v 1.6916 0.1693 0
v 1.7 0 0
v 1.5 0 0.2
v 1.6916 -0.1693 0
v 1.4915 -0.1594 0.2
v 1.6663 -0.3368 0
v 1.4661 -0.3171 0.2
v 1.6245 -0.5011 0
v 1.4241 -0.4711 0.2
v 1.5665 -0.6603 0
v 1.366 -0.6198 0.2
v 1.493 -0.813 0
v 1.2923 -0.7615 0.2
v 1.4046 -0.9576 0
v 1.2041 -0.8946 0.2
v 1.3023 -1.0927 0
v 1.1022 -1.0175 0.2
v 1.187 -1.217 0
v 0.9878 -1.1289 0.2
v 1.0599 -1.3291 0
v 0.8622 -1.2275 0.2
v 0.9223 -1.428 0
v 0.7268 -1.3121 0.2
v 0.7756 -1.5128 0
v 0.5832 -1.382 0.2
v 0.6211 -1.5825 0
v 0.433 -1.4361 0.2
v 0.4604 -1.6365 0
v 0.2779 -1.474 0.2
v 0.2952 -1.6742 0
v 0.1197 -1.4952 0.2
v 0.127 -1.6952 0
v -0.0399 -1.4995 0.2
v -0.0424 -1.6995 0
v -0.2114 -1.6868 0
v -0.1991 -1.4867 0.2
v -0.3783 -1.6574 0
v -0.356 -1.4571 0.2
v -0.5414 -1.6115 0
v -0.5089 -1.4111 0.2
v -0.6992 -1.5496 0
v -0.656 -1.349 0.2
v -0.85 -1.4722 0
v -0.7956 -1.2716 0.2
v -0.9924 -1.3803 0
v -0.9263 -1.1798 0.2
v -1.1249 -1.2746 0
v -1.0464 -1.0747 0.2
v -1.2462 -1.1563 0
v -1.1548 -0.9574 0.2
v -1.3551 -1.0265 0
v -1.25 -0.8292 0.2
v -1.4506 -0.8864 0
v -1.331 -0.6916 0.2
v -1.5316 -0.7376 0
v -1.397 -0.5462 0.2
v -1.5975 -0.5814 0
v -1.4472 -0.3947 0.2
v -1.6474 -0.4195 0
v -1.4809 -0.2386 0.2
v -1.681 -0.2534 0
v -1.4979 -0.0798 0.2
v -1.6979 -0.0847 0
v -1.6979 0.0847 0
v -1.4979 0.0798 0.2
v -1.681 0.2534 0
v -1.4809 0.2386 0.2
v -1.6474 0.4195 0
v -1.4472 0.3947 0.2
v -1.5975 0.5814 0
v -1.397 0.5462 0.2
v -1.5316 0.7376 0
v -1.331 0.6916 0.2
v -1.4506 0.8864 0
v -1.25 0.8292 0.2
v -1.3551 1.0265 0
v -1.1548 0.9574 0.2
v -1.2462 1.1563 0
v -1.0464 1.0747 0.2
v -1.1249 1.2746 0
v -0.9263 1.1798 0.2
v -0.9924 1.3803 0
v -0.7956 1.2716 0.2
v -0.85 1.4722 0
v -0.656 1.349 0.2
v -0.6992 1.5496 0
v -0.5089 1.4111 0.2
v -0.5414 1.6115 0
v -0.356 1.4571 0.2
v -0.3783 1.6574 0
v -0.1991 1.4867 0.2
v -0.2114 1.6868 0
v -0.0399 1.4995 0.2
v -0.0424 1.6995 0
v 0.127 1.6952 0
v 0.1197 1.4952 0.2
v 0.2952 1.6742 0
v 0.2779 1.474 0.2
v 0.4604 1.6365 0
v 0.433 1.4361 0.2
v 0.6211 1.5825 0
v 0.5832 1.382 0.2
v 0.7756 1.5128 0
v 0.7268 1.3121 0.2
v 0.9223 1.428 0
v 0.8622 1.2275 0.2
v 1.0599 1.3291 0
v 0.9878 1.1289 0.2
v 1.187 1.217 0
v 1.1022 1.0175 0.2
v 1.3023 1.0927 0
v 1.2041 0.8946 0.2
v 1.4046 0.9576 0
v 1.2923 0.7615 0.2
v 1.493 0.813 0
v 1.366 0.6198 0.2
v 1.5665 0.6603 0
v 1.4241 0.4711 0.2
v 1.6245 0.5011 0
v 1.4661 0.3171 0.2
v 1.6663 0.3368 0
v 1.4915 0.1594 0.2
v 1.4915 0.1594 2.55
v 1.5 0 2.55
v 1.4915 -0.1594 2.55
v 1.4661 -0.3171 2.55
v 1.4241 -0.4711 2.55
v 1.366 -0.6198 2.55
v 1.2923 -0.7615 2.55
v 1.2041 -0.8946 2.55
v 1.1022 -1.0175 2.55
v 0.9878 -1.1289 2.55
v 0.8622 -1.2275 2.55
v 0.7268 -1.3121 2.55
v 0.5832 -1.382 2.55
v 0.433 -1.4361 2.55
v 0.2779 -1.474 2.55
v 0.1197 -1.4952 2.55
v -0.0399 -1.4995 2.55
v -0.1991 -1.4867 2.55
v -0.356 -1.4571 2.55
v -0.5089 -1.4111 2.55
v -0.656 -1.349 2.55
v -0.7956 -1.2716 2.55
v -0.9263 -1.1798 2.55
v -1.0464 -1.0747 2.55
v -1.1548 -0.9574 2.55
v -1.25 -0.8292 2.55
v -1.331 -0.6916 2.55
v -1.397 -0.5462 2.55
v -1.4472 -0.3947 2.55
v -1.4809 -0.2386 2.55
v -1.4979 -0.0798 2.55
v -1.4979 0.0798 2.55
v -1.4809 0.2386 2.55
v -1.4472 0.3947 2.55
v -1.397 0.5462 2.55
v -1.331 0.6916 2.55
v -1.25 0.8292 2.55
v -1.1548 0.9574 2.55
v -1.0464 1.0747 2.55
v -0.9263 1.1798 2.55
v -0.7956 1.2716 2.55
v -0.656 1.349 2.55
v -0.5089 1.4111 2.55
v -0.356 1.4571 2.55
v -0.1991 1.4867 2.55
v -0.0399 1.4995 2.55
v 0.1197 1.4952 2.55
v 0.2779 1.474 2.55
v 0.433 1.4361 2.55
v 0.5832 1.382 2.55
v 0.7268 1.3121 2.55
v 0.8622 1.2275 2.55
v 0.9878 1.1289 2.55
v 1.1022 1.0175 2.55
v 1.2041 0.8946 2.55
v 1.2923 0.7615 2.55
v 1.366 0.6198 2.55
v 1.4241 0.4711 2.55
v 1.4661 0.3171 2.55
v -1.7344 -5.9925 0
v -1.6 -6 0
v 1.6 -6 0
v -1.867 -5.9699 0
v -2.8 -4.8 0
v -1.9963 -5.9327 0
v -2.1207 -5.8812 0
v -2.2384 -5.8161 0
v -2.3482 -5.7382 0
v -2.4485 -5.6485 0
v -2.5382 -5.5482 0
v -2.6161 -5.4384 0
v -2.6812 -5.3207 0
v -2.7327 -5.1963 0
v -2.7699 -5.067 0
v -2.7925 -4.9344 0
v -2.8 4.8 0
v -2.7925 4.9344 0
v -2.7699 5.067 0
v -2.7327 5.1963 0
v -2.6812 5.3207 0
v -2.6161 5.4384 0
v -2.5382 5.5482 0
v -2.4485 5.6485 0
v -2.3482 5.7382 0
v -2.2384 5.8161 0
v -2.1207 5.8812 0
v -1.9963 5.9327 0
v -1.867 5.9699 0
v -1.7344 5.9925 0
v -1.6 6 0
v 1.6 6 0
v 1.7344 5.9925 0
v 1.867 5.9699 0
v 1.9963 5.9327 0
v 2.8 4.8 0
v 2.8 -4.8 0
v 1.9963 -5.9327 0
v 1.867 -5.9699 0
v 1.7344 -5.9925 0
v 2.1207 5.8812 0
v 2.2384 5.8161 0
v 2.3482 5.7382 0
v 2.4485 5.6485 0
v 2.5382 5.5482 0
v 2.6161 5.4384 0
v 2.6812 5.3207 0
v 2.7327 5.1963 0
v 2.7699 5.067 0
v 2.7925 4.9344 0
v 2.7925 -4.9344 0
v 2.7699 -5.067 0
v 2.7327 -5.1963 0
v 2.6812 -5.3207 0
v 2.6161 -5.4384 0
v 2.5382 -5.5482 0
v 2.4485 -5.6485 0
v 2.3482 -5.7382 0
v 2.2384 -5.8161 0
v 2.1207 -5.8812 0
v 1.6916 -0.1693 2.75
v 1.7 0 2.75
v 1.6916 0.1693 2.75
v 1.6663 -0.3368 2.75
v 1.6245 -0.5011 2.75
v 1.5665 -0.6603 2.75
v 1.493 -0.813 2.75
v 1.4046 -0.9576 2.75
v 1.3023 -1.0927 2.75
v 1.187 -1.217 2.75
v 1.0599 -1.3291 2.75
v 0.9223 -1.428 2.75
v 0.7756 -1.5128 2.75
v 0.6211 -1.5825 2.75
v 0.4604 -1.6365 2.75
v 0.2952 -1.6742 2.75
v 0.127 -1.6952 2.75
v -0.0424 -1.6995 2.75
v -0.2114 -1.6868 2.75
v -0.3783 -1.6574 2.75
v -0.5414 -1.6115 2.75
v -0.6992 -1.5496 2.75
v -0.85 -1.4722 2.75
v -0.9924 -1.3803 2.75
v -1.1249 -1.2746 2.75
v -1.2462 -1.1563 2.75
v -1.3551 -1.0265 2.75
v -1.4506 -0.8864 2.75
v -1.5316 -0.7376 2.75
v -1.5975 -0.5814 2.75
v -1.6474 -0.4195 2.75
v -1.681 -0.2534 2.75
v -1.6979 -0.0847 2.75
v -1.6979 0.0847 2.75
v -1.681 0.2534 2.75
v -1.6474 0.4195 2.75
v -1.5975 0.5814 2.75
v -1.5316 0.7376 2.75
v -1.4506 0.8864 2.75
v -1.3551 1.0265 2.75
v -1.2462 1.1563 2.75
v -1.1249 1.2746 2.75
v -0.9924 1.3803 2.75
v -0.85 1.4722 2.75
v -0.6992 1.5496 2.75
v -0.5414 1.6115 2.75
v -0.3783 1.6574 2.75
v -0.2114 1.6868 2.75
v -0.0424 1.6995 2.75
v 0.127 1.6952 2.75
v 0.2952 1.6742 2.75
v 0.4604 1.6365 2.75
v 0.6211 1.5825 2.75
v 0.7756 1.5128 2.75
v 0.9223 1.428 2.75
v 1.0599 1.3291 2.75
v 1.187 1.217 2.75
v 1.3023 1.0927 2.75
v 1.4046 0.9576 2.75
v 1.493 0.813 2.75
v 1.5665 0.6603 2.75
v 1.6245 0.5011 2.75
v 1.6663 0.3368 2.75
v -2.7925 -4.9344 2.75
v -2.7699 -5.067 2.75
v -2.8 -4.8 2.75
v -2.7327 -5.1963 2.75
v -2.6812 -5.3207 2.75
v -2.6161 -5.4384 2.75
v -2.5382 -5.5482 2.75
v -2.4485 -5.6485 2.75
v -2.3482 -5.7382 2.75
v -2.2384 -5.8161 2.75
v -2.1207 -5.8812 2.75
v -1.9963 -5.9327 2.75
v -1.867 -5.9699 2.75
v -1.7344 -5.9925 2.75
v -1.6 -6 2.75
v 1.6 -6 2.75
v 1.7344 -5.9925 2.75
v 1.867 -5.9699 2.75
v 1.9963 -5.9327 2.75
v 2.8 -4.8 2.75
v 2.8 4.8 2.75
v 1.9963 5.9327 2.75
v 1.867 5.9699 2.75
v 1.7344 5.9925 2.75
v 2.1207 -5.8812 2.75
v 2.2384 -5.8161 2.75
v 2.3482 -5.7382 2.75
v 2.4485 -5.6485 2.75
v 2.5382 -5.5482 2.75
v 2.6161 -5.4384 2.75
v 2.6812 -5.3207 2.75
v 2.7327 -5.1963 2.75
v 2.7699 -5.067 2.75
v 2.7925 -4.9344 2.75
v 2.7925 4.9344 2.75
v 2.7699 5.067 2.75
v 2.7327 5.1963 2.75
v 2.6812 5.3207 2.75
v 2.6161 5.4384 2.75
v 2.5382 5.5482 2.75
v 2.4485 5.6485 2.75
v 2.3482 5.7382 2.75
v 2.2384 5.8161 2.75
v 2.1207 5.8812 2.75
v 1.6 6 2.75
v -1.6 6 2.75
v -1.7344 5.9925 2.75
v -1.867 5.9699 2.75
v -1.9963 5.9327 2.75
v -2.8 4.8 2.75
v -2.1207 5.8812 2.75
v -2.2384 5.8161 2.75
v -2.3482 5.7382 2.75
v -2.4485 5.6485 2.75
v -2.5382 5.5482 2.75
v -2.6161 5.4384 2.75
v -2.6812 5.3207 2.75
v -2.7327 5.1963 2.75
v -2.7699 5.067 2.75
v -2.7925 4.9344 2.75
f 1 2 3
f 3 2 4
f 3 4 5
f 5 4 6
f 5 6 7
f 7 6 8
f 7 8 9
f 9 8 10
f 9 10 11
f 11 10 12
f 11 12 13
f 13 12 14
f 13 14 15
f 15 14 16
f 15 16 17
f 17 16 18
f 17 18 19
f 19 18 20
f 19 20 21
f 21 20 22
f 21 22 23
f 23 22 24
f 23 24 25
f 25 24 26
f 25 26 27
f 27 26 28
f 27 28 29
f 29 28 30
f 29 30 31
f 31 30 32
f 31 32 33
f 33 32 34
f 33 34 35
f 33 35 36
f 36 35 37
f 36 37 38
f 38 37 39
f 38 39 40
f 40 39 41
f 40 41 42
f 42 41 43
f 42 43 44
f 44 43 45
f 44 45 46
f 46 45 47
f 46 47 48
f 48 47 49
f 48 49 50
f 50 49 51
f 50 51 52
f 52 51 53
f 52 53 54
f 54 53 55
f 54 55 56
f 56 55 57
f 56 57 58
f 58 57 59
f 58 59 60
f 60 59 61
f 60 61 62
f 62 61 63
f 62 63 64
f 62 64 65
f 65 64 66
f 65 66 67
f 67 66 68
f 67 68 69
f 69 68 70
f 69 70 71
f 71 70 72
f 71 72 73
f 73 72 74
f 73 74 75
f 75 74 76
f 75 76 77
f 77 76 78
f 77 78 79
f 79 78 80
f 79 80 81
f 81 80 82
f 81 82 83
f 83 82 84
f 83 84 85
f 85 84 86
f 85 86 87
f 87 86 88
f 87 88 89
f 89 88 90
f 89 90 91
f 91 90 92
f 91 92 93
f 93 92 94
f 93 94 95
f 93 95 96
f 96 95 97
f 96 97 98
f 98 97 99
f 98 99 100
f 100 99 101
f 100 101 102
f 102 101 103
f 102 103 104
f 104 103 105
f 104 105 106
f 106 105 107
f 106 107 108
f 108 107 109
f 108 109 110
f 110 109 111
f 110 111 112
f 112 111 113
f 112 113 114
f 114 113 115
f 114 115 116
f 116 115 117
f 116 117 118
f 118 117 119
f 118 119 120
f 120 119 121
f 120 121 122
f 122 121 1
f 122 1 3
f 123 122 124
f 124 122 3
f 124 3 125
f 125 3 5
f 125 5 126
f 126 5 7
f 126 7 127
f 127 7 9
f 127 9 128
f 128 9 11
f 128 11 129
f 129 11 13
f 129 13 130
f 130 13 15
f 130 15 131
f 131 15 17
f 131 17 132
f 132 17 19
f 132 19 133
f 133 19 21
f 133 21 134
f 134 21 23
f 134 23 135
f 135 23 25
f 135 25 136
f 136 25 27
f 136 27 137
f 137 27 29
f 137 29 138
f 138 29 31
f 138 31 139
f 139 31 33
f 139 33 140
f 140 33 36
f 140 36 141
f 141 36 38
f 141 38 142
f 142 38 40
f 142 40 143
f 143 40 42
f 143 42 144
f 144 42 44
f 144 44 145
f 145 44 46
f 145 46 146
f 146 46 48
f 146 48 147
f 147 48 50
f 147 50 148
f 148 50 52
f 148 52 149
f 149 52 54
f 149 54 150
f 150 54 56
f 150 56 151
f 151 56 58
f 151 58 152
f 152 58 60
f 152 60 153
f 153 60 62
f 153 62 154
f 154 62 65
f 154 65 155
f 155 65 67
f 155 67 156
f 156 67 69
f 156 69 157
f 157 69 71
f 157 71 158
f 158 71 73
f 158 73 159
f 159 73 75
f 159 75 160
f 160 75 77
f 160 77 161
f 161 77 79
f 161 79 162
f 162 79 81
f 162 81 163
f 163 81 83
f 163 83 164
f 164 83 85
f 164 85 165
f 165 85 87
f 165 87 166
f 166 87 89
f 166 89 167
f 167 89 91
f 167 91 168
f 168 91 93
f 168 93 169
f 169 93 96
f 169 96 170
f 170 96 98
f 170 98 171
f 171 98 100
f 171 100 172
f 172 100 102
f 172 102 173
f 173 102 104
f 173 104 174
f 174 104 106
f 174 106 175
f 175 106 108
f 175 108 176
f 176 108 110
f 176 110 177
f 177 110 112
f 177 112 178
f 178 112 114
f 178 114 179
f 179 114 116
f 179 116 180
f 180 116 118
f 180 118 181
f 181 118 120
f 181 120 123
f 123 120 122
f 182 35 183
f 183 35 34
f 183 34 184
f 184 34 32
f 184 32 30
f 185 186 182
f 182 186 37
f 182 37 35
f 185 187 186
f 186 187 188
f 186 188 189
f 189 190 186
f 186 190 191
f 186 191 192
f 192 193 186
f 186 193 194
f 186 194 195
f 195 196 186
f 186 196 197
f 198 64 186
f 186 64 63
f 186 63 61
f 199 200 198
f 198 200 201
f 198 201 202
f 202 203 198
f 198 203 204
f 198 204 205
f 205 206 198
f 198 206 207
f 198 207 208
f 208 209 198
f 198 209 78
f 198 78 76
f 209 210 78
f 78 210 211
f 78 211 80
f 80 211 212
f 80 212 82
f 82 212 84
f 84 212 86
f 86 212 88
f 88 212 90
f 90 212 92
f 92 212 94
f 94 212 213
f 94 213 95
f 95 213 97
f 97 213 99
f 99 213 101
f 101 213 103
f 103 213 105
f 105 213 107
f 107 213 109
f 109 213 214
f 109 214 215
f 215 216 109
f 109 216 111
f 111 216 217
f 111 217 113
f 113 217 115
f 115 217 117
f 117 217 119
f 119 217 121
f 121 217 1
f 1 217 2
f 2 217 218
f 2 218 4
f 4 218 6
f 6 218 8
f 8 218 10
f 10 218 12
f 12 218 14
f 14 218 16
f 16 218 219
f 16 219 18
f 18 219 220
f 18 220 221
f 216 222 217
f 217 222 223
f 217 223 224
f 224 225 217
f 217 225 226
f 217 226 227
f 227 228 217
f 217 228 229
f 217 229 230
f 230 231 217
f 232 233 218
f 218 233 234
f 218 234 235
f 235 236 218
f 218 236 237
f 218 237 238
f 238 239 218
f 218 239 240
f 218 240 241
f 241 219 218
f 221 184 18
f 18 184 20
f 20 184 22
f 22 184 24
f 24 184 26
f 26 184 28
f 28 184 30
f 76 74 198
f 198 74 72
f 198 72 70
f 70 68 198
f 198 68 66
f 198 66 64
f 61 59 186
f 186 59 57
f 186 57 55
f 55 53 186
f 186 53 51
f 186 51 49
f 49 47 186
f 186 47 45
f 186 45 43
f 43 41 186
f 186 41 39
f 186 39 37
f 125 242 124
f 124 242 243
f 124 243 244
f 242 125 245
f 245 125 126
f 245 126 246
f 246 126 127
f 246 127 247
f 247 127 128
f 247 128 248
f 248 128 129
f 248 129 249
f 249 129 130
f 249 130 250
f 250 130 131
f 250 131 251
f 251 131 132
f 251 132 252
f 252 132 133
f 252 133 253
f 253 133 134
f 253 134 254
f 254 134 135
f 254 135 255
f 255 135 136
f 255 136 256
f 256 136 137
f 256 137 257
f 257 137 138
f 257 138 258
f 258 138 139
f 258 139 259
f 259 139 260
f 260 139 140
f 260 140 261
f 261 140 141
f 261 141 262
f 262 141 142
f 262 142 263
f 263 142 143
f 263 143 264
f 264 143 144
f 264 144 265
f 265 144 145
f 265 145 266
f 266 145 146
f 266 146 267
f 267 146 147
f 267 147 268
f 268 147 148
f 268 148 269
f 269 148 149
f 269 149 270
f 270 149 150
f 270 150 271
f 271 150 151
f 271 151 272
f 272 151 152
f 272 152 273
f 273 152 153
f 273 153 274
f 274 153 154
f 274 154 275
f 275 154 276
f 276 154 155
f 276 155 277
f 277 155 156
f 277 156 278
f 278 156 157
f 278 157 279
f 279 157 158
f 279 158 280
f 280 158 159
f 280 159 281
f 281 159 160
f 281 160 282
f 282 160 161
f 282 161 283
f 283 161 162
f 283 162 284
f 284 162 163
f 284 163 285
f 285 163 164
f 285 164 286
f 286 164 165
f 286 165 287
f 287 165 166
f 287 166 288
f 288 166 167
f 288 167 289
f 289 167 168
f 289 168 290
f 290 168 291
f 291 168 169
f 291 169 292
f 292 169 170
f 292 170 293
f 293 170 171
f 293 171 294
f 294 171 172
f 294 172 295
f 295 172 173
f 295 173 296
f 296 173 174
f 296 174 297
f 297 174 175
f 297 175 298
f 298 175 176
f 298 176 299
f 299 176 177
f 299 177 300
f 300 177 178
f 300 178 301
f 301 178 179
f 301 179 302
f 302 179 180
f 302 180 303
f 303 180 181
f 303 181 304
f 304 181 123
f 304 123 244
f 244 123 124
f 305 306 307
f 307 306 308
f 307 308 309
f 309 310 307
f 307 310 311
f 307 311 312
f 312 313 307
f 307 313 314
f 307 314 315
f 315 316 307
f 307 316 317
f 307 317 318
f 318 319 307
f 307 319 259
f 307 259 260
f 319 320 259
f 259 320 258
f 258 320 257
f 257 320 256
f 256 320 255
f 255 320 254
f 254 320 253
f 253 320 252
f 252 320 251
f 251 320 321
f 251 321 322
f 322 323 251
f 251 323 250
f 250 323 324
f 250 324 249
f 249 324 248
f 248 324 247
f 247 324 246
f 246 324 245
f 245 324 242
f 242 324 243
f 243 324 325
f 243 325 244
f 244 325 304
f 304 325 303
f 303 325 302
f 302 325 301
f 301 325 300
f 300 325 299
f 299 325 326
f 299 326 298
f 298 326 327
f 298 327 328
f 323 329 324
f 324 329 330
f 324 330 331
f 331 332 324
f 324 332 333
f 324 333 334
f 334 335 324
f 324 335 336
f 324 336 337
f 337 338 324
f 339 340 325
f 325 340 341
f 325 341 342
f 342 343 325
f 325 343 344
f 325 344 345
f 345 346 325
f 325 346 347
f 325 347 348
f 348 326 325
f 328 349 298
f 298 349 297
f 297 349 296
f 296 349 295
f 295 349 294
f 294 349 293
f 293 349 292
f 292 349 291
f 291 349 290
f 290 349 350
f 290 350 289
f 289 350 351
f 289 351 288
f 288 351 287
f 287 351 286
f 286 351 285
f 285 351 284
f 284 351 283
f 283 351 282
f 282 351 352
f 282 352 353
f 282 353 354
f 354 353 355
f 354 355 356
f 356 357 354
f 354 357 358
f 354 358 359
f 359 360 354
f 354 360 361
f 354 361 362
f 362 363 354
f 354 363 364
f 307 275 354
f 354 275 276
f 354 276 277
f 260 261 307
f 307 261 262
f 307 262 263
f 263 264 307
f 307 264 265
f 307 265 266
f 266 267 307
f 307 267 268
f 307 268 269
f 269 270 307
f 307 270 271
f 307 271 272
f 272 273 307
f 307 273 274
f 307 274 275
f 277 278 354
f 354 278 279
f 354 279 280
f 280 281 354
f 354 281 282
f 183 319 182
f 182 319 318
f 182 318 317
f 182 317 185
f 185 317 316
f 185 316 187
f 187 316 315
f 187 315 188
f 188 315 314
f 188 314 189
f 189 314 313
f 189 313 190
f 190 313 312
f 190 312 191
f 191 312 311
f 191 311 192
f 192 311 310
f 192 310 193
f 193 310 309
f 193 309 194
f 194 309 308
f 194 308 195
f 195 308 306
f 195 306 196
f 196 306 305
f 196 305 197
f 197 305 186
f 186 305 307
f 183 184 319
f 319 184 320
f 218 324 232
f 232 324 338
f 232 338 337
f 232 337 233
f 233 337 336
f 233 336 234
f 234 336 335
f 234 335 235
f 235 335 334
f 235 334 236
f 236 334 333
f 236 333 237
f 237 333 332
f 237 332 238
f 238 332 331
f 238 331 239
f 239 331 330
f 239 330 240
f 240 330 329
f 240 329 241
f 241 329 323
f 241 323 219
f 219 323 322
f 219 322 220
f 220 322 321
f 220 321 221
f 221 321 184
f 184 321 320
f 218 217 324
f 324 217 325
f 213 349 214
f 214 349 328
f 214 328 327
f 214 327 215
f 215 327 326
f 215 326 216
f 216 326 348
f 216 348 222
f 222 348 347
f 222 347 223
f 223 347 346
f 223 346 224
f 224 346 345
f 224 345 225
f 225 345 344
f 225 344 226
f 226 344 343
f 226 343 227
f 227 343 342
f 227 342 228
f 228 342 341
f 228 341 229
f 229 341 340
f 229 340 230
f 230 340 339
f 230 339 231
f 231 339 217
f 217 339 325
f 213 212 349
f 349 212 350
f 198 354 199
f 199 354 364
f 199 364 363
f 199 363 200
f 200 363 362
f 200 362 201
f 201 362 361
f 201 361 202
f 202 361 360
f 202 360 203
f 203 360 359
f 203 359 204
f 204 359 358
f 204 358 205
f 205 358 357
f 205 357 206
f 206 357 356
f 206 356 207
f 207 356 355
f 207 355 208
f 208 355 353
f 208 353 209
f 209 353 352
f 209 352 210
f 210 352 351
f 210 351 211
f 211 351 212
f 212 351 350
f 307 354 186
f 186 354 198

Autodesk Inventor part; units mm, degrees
ref_plane "YZ Plane" through (0, 0, 0) normal (1, 0, 0) x (0, 1, 0)
ref_plane "XZ Plane" through (0, 0, 0) normal (0, 1, 0) x (-1, 0, 0)
ref_plane "XY Plane" through (0, 0, 0) normal (0, 0, 1) x (1, 0, 0)
sketch "Náčrt2" plane through (0, 0, 0) normal (0, 0, 1) x (1, 0, 0)
  line L0 (-2.8, -6) -> (2.8, -6)
  line L1 (2.8, -6) -> (2.8, 6)
  line L2 (2.8, 6) -> (-2.8, 6)
  line L3 (-2.8, 6) -> (-2.8, -6)
  line L4 (-2.8, -6) -> (2.8, 6) construction
  line L5 (2.8, -6) -> (-2.8, 6) construction
  circle A0 centre (0, 0) radius 1.5
  dimension "d0" = 5.6
  dimension "d1" = 12
  dimension "d2" = 3
extrude "Vysunutí1" add sketch "Náčrt2" along normal blind 2.75
fillet "Zaoblení1" radius 1.2 4 edges at (-2.8, 6, 1.375) (2.8, 6, 1.375) (2.8, -6, 1.375) (-2.8, -6, 1.375)
chamfer "Zkosení1" distance 0.2 angle 45 2 edges at (-1.5, 0, 2.75) (-1.5, 0, 0)
properties part number "rapoukServoWasherv0_3D tisk"
